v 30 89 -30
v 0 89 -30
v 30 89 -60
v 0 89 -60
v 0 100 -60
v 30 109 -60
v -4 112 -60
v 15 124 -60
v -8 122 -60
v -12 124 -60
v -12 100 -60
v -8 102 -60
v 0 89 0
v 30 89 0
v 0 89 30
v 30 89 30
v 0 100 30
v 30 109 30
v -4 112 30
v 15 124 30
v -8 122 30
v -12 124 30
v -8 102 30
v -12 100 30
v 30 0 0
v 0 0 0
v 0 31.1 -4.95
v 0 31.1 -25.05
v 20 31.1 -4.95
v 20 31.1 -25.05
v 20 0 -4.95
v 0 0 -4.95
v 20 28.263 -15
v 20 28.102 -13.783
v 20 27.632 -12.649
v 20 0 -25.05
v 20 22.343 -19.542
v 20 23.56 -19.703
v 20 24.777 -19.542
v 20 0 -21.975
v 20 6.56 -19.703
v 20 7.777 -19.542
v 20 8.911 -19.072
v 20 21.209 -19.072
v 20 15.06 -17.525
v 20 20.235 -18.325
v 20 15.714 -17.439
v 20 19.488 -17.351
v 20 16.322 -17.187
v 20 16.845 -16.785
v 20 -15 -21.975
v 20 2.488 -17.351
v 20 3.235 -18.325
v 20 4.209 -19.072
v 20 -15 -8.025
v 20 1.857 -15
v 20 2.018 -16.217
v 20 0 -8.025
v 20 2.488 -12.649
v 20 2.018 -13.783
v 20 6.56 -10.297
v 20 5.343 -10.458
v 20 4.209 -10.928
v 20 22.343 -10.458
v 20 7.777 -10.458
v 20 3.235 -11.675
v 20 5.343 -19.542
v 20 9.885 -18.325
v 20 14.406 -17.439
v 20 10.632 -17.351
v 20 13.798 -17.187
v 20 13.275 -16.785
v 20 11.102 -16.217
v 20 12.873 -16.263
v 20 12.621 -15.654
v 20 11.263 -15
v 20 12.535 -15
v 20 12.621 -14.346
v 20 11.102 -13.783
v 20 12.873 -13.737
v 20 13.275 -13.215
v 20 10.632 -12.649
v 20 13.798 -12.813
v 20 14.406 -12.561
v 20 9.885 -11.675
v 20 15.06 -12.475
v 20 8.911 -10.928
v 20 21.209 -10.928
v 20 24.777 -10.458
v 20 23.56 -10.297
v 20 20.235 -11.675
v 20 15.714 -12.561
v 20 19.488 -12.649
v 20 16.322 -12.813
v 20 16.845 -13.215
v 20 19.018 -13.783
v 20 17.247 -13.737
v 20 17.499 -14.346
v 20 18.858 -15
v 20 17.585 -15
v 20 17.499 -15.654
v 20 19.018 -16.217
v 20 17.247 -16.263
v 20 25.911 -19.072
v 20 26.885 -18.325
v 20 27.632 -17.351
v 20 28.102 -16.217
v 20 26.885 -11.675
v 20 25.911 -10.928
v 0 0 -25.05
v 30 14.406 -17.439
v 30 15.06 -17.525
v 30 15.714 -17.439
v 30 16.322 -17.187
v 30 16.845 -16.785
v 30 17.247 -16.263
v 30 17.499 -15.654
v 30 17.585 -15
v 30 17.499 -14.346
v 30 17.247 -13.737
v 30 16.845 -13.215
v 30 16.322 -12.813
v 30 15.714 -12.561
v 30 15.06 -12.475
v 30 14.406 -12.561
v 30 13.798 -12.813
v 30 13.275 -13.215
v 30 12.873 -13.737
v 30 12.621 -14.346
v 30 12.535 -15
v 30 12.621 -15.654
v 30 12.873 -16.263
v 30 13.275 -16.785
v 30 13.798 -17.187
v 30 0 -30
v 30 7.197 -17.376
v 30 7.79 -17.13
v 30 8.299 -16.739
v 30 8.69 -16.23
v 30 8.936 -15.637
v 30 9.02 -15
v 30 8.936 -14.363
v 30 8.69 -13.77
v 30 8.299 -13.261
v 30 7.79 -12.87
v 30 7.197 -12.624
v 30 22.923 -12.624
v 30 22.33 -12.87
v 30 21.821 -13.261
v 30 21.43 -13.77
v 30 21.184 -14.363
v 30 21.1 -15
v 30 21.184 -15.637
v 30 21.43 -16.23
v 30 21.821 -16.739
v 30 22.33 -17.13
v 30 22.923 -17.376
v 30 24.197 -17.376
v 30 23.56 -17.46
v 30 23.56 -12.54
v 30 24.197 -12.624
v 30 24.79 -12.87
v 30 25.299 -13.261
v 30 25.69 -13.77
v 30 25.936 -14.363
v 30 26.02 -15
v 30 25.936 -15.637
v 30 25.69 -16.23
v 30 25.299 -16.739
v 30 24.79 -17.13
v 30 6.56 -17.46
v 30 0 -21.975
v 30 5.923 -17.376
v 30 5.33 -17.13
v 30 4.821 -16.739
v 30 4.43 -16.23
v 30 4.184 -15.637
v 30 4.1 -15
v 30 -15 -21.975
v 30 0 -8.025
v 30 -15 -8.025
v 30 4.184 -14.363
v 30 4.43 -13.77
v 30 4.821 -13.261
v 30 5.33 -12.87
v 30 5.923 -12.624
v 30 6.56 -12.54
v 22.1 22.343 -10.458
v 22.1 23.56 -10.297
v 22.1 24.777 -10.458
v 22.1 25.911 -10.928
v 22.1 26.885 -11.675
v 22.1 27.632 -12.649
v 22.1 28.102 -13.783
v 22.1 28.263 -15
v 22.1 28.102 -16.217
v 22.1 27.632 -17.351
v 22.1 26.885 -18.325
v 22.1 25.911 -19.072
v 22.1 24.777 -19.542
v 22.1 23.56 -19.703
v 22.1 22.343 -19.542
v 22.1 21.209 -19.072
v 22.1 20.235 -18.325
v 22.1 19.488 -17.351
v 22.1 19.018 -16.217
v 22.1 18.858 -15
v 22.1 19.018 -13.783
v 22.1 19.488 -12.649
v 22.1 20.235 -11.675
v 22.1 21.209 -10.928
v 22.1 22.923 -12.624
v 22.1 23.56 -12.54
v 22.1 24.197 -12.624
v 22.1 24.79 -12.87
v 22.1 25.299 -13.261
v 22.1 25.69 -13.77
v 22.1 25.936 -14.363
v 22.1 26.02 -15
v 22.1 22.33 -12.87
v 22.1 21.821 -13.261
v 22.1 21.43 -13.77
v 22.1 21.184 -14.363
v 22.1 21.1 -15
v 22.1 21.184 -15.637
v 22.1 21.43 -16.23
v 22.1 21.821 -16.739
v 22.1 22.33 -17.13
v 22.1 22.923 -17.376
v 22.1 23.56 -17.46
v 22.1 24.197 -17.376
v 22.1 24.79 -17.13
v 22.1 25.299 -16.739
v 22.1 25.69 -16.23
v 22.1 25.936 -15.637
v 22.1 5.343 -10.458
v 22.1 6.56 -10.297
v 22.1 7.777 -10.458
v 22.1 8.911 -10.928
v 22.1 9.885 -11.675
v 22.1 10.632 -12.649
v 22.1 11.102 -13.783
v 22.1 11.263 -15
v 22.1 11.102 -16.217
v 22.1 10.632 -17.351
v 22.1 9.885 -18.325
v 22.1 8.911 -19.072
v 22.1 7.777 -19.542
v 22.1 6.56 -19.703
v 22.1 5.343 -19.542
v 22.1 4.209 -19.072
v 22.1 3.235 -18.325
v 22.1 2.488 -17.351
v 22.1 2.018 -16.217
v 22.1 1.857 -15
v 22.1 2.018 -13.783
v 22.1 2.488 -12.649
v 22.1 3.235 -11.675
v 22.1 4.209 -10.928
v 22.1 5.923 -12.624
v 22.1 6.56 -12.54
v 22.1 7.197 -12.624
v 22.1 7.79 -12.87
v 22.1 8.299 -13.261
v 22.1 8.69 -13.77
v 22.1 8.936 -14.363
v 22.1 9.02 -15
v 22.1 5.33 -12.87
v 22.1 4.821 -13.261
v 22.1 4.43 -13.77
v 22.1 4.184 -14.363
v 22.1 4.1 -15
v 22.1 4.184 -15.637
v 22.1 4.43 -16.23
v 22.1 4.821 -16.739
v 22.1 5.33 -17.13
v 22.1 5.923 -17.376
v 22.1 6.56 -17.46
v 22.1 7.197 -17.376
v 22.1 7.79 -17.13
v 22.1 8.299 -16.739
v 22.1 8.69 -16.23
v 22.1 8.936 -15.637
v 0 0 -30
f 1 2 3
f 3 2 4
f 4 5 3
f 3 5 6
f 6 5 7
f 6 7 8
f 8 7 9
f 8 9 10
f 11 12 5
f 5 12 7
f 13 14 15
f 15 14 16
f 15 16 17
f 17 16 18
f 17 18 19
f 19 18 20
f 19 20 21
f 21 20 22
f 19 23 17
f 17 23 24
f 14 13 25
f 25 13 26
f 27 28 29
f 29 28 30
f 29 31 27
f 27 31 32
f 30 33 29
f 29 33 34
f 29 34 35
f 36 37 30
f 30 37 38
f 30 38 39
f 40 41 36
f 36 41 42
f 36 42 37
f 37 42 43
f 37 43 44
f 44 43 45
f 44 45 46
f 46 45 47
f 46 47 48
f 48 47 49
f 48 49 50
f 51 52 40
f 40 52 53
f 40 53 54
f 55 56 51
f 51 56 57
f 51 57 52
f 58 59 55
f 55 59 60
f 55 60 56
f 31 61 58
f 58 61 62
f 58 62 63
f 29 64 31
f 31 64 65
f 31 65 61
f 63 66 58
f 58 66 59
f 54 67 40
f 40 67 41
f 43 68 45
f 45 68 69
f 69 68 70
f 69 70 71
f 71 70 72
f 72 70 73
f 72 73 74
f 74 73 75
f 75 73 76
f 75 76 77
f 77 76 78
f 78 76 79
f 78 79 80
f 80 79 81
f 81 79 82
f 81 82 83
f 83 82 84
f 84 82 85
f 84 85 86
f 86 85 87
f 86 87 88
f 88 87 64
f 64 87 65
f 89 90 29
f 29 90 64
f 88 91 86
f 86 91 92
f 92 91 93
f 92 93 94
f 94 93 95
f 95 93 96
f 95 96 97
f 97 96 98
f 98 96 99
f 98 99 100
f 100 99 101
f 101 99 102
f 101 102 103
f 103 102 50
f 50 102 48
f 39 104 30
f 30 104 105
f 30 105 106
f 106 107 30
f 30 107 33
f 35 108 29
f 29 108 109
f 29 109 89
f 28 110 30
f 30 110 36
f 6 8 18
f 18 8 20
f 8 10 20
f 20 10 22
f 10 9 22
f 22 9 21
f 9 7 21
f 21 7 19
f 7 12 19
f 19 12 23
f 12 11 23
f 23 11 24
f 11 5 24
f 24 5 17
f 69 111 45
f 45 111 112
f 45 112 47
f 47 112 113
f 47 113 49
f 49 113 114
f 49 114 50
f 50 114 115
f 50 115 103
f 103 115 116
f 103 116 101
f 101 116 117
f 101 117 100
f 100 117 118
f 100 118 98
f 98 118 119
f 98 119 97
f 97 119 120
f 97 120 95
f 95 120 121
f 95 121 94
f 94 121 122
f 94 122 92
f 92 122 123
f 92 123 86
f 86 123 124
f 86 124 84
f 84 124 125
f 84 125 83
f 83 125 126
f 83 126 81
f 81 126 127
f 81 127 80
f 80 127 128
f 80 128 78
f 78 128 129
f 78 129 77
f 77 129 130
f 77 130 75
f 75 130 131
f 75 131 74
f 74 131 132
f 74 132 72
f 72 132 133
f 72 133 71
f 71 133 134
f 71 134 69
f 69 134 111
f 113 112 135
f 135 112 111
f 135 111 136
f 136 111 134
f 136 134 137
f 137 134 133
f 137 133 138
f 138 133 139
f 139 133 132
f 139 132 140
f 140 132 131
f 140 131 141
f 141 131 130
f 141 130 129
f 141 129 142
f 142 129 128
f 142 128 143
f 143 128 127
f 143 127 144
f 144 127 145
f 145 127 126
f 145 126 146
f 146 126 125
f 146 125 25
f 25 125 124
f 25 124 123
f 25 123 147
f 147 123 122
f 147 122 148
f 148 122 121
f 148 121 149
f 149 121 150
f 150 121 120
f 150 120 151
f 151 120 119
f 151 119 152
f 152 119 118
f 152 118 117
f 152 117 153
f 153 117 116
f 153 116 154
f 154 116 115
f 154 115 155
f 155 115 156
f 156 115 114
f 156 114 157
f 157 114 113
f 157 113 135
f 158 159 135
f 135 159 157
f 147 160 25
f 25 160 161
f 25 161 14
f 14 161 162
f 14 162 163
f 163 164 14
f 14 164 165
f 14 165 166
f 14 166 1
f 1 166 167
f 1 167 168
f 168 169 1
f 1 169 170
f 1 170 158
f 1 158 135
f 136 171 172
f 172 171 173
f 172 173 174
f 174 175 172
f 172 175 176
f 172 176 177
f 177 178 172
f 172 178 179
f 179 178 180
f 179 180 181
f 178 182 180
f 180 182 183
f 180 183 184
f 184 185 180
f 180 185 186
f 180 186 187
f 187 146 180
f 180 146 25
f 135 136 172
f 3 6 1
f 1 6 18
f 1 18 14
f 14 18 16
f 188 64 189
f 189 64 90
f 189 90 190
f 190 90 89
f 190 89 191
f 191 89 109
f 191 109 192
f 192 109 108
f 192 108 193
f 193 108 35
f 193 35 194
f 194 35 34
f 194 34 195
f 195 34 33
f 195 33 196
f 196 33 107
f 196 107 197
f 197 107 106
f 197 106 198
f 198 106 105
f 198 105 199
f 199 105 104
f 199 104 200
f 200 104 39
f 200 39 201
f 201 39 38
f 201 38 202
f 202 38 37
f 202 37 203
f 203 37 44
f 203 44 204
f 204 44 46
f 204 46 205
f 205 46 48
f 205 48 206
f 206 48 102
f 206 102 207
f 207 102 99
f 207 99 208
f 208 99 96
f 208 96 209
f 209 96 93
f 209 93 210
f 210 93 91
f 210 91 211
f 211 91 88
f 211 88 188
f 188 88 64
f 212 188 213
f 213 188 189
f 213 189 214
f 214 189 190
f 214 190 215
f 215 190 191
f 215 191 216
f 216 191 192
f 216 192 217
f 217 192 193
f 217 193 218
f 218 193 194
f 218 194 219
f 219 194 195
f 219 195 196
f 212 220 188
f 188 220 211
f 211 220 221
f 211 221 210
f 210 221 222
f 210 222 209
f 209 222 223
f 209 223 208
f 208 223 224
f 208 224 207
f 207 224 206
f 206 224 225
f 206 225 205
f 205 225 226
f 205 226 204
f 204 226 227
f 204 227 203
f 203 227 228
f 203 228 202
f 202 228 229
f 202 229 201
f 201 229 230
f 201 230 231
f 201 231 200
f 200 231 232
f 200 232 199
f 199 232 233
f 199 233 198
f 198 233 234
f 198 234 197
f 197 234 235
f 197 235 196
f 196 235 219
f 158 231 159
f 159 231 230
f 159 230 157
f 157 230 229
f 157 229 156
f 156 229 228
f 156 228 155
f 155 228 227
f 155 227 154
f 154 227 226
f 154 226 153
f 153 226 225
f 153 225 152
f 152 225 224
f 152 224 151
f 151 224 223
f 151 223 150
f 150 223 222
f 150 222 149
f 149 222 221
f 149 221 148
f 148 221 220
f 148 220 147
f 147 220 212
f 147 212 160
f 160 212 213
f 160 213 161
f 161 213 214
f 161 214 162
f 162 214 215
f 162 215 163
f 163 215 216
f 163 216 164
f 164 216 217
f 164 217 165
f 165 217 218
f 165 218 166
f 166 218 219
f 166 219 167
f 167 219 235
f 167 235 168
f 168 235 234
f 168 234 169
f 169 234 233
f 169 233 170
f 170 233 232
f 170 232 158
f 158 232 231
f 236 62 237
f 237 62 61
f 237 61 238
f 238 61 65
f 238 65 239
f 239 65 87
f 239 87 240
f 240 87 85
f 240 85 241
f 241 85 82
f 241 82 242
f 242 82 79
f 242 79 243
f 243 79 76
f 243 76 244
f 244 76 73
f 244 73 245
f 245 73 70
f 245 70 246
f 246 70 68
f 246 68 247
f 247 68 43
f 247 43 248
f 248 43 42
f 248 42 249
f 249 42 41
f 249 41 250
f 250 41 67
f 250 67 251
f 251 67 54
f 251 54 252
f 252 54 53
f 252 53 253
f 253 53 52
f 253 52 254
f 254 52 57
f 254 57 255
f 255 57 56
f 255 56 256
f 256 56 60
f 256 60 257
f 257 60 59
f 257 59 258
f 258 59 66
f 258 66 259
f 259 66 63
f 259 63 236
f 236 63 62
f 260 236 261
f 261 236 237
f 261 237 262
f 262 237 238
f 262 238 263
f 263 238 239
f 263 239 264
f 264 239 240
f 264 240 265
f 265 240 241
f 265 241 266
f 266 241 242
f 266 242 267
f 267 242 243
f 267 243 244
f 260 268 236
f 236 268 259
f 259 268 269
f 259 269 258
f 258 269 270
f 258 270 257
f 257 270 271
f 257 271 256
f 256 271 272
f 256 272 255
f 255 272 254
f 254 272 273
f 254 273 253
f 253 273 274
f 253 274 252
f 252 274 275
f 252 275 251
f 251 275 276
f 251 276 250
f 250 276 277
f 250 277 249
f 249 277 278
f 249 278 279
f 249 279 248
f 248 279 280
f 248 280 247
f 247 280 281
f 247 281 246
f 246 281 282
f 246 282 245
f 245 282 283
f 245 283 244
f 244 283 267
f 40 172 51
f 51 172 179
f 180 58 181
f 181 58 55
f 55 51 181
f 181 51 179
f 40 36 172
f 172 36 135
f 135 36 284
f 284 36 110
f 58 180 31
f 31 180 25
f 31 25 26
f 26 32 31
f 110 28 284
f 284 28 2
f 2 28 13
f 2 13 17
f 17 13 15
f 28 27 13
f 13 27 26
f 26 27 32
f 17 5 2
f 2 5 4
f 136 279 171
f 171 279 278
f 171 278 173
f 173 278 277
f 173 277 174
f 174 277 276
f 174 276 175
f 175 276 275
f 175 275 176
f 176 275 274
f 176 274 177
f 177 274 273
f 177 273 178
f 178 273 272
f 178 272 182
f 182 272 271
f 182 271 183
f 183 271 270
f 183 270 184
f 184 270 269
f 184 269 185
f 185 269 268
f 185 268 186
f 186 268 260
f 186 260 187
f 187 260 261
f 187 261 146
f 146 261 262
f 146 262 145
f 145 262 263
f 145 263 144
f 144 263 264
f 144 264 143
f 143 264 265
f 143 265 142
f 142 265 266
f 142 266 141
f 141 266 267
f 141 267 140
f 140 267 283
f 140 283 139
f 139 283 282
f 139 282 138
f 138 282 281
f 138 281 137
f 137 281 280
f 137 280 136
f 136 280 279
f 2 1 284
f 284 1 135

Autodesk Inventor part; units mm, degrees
ref_plane "YZ Plane" through (0, 0, 0) normal (1, 0, 0) x (0, 1, 0)
ref_plane "XZ Plane" through (0, 0, 0) normal (0, 1, 0) x (-1, 0, 0)
sketch "Sketch1" plane through (0, 0, 0) normal (0, 0, 1) x (1, 0, 0)
  line L0 (0, 0) -> (25, 0)
  line L1 (25, 0) -> (25, 40)
  line L2 (25, 40) -> (0, 40)
  line L3 (0, 40) -> (0, 0)
  dimension "d1" = 25
  dimension "d2" = 40
  dimension "d3" = 25
extrude "Extrusion1" add sketch "Sketch1" against normal blind 30
sketch "Sketch2" plane through (25, 0, 0) normal (1, 0, 0) x (0, 0, -1)
  line L0 (0, 0) -> (30, 0) projected
  circle A0 centre (15, 6.56) radius 2.46
extrude "Extrusion2" cut sketch "Sketch2" against normal blind 30
sketch "Sketch3" plane through (0, 0, 0) normal (-1, 0, 0) x (0, 0, 1)
  line L0 (0, 0) -> (-30, 0) projected
  line L1 (-25.05, 0) -> (-4.95, 0)
  line L2 (-4.95, 0) -> (-4.95, 33.12)
  line L3 (-4.95, 33.12) -> (-25.05, 33.12)
  line L4 (-25.05, 33.12) -> (-25.05, 0)
  dimension "d11" = 20.1
extrude "Extrusion3" cut sketch "Sketch3" against normal blind 20
sketch "Sketch4" plane through (0, 0, 0) normal (0, -1, 0) x (1, 0, 0)
  line L0 (20, -4.95) -> (20, -25.05) projected
  line L1 (20, -15) -> (25, -15)
  line L2 (25, 0) -> (25, -30) projected
  line L3 (20, -8.025) -> (25, -8.025)
  line L4 (25, -8.025) -> (25, -21.975)
  line L5 (25, -21.975) -> (20, -21.975)
  line L6 (20, -21.975) -> (20, -8.025)
  line L7 (20, -8.025) -> (25, -21.975) construction
  line L8 (25, -8.025) -> (20, -21.975) construction
  line L9 (25, -12.54) -> (25, -17.46) projected
  point P0 (0, 0)
  point P1 (22.5, -15)
  dimension "d14" = 13.95
extrude "Extrusion4" add sketch "Sketch4" along normal blind 15
sketch "Sketch5" plane through (20, 0, 0) normal (-1, 0, 0) x (0, 0, 1)
  circle A0 centre (-15, 6.56) radius 2.46 projected
  circle A1 centre (-15, 6.56) radius 4.7025
  circle A2 centre (-15, 6.56) radius 2.46 projected
  circle A3 centre (-15, 6.56) radius 2.46
  point P0 (0, 0)
  dimension "d17" = 9.405
extrude "Extrusion5" cut sketch "Sketch5" against normal blind 2.1
sketch "Sketch6" plane through (25, 0, 0) normal (1, 0, 0) x (0, 0, -1)
  circle A0 centre (15, 6.56) radius 4.7025 projected
  line L0 (15, 6.56) -> (15, 23.56)
  circle A1 centre (15, 23.56) radius 2.46
  point P0 (0, 0)
  dimension "d20" = 17
  dimension "d21" = 4.92
extrude "Extrusion6" cut sketch "Sketch6" against normal blind 10 contours A1
sketch "Sketch7" plane through (20, 0, 0) normal (-1, 0, 0) x (0, 0, 1)
  circle A0 centre (-15, 23.56) radius 2.46 projected
  circle A1 centre (-15, 23.56) radius 4.7025
  point P0 (0, 0)
  dimension "d24" = 9.405
extrude "Extrusion7" cut sketch "Sketch7" against normal blind 2.1
sketch "Sketch9" plane through (25, 0, 0) normal (1, 0, 0) x (0, 0, -1)
  circle A0 centre (15, 6.56) radius 2.46 projected
  circle A1 centre (15, 6.56) radius 2.46
  circle A2 centre (15, 23.56) radius 2.46 projected
  circle A3 centre (15, 23.56) radius 2.46
  line L0 (30, 40) -> (30, 0) projected
  line L1 (30, 0) -> (30, 40)
  line L2 (30, 40) -> (0, 40)
  line L3 (0, 40) -> (0, 0)
  line L4 (0, 0) -> (8.025, 0) projected
  line L5 (21.975, 0) -> (21.975, -15)
  line L6 (21.975, -15) -> (8.025, -15)
  line L7 (8.025, -15) -> (8.025, 0)
  line L8 (0, 0) -> (8.025, 0)
  line L9 (21.975, 0) -> (30, 0)
extrude "Extrusion8" add sketch "Sketch9" along normal blind 5
sketch "Sketch10" plane through (0, 40, 0) normal (0, 1, 0) x (1, 0, 0)
  line L0 (0, 30) -> (30, 30) projected
  line L1 (30, 0) -> (0, 0) projected
  line L2 (0, 30) -> (30, 30)
  line L3 (30, 30) -> (30, 0)
  line L4 (30, 0) -> (0, 0)
  line L5 (0, 0) -> (0, 30)
extrude "Extrusion9" add sketch "Sketch10" along normal blind 30
sketch "Sketch12" plane through (30, 0, 0) normal (1, 0, 0) x (0, 0, -1)
  circle A0 centre (15, 6.56) radius 2.46 projected
  line L0 (15, 6.56) -> (15, 15.06)
  circle A1 centre (15, 15.06) radius 2.525
  point P0 (0, 0)
  dimension "d31" = 8.5
  dimension "d33" = 5.05
extrude "Extrusion10" cut sketch "Sketch12" against normal blind 30 contours A1
sketch "Sketch14" plane through (0, 0, 0) normal (0, 0, 1) x (1, 0, 0)
  line L0 (30, 70) -> (0, 70) projected
  line L1 (0, 70) -> (0, 85)
  line L2 (30, 0) -> (30, 70) projected
  line L3 (30, 109) -> (30, 70)
  line L4 (30, 105) -> (30, 100)
  line L5 (-12, 124) -> (15, 124)
  line L6 (-8, 122) -> (-12, 124)
  line L7 (-8, 122) -> (-4, 112)
  line L8 (-8, 102) -> (-12, 100)
  line L9 (-8, 102) -> (-4, 112)
  line L10 (30, 109) -> (15, 124)
  line L11 (0, 85) -> (0, 100)
  line L12 (0, 100) -> (-12, 100)
  point P0 (0, 0)
  dimension "d69" = 12
extrude "Extrusion12" add sketch "Sketch14" against normal blind 30
sketch "Sketch15" plane through (0, 0, -25.05) normal (-1, 0, 0) x (0, 0, 1)
  line L0 (0, 33.12) -> (20.1, 33.12) projected
  line L1 (20.1, 33.12) -> (20.1, 0) projected
  line L2 (0, 33.12) -> (20.1, 33.12)
  line L3 (20.1, 33.12) -> (20.1, 31.1)
  line L4 (20.1, 31.1) -> (0, 31.1)
  line L5 (0, 31.1) -> (0, 33.12)
  point P0 (25.05, 0)
  dimension "d57" = 2.02
extrude "Extrusion13" add sketch "Sketch15" against normal blind 20
sketch "Sketch19" plane through (0, 0, 0) normal (0, 0, 1) x (1, 0, 0)
  line L0 (0, 100) -> (-12, 100) projected
  line L1 (0, 100) -> (-12, 100)
  line L2 (-12, 100) -> (-8, 102) projected
  line L3 (-12, 100) -> (-8, 102)
  line L4 (-8, 102) -> (-4, 112) projected
  line L5 (-8, 102) -> (-4, 112)
  line L6 (-4, 112) -> (-8, 122) projected
  line L7 (-4, 112) -> (-8, 122)
  line L8 (-8, 122) -> (-12, 124) projected
  line L9 (-8, 122) -> (-12, 124)
  line L10 (-12, 124) -> (15, 124) projected
  line L11 (-12, 124) -> (15, 124)
  line L12 (15, 124) -> (30, 109) projected
  line L13 (15, 124) -> (30, 109)
  line L14 (30, 109) -> (30, 89)
  line L15 (30, 89) -> (0, 89)
  line L16 (0, 89) -> (0, 100)
  point P0 (0, 0)
  dimension "d71" = 20
  dimension "d72" = 30
extrude "Extrusion14" add sketch "Sketch19" along normal blind 30
ref_plane "Work Plane1" through (0, 0, -15) normal (0, 0, 1) x (1, 0, 0)
mirror "Mirror1" about plane through (0, 0, -15) normal (0, 0, 1) of "Extrusion14"
properties part number "rec_b_20mm_x_90mm"
